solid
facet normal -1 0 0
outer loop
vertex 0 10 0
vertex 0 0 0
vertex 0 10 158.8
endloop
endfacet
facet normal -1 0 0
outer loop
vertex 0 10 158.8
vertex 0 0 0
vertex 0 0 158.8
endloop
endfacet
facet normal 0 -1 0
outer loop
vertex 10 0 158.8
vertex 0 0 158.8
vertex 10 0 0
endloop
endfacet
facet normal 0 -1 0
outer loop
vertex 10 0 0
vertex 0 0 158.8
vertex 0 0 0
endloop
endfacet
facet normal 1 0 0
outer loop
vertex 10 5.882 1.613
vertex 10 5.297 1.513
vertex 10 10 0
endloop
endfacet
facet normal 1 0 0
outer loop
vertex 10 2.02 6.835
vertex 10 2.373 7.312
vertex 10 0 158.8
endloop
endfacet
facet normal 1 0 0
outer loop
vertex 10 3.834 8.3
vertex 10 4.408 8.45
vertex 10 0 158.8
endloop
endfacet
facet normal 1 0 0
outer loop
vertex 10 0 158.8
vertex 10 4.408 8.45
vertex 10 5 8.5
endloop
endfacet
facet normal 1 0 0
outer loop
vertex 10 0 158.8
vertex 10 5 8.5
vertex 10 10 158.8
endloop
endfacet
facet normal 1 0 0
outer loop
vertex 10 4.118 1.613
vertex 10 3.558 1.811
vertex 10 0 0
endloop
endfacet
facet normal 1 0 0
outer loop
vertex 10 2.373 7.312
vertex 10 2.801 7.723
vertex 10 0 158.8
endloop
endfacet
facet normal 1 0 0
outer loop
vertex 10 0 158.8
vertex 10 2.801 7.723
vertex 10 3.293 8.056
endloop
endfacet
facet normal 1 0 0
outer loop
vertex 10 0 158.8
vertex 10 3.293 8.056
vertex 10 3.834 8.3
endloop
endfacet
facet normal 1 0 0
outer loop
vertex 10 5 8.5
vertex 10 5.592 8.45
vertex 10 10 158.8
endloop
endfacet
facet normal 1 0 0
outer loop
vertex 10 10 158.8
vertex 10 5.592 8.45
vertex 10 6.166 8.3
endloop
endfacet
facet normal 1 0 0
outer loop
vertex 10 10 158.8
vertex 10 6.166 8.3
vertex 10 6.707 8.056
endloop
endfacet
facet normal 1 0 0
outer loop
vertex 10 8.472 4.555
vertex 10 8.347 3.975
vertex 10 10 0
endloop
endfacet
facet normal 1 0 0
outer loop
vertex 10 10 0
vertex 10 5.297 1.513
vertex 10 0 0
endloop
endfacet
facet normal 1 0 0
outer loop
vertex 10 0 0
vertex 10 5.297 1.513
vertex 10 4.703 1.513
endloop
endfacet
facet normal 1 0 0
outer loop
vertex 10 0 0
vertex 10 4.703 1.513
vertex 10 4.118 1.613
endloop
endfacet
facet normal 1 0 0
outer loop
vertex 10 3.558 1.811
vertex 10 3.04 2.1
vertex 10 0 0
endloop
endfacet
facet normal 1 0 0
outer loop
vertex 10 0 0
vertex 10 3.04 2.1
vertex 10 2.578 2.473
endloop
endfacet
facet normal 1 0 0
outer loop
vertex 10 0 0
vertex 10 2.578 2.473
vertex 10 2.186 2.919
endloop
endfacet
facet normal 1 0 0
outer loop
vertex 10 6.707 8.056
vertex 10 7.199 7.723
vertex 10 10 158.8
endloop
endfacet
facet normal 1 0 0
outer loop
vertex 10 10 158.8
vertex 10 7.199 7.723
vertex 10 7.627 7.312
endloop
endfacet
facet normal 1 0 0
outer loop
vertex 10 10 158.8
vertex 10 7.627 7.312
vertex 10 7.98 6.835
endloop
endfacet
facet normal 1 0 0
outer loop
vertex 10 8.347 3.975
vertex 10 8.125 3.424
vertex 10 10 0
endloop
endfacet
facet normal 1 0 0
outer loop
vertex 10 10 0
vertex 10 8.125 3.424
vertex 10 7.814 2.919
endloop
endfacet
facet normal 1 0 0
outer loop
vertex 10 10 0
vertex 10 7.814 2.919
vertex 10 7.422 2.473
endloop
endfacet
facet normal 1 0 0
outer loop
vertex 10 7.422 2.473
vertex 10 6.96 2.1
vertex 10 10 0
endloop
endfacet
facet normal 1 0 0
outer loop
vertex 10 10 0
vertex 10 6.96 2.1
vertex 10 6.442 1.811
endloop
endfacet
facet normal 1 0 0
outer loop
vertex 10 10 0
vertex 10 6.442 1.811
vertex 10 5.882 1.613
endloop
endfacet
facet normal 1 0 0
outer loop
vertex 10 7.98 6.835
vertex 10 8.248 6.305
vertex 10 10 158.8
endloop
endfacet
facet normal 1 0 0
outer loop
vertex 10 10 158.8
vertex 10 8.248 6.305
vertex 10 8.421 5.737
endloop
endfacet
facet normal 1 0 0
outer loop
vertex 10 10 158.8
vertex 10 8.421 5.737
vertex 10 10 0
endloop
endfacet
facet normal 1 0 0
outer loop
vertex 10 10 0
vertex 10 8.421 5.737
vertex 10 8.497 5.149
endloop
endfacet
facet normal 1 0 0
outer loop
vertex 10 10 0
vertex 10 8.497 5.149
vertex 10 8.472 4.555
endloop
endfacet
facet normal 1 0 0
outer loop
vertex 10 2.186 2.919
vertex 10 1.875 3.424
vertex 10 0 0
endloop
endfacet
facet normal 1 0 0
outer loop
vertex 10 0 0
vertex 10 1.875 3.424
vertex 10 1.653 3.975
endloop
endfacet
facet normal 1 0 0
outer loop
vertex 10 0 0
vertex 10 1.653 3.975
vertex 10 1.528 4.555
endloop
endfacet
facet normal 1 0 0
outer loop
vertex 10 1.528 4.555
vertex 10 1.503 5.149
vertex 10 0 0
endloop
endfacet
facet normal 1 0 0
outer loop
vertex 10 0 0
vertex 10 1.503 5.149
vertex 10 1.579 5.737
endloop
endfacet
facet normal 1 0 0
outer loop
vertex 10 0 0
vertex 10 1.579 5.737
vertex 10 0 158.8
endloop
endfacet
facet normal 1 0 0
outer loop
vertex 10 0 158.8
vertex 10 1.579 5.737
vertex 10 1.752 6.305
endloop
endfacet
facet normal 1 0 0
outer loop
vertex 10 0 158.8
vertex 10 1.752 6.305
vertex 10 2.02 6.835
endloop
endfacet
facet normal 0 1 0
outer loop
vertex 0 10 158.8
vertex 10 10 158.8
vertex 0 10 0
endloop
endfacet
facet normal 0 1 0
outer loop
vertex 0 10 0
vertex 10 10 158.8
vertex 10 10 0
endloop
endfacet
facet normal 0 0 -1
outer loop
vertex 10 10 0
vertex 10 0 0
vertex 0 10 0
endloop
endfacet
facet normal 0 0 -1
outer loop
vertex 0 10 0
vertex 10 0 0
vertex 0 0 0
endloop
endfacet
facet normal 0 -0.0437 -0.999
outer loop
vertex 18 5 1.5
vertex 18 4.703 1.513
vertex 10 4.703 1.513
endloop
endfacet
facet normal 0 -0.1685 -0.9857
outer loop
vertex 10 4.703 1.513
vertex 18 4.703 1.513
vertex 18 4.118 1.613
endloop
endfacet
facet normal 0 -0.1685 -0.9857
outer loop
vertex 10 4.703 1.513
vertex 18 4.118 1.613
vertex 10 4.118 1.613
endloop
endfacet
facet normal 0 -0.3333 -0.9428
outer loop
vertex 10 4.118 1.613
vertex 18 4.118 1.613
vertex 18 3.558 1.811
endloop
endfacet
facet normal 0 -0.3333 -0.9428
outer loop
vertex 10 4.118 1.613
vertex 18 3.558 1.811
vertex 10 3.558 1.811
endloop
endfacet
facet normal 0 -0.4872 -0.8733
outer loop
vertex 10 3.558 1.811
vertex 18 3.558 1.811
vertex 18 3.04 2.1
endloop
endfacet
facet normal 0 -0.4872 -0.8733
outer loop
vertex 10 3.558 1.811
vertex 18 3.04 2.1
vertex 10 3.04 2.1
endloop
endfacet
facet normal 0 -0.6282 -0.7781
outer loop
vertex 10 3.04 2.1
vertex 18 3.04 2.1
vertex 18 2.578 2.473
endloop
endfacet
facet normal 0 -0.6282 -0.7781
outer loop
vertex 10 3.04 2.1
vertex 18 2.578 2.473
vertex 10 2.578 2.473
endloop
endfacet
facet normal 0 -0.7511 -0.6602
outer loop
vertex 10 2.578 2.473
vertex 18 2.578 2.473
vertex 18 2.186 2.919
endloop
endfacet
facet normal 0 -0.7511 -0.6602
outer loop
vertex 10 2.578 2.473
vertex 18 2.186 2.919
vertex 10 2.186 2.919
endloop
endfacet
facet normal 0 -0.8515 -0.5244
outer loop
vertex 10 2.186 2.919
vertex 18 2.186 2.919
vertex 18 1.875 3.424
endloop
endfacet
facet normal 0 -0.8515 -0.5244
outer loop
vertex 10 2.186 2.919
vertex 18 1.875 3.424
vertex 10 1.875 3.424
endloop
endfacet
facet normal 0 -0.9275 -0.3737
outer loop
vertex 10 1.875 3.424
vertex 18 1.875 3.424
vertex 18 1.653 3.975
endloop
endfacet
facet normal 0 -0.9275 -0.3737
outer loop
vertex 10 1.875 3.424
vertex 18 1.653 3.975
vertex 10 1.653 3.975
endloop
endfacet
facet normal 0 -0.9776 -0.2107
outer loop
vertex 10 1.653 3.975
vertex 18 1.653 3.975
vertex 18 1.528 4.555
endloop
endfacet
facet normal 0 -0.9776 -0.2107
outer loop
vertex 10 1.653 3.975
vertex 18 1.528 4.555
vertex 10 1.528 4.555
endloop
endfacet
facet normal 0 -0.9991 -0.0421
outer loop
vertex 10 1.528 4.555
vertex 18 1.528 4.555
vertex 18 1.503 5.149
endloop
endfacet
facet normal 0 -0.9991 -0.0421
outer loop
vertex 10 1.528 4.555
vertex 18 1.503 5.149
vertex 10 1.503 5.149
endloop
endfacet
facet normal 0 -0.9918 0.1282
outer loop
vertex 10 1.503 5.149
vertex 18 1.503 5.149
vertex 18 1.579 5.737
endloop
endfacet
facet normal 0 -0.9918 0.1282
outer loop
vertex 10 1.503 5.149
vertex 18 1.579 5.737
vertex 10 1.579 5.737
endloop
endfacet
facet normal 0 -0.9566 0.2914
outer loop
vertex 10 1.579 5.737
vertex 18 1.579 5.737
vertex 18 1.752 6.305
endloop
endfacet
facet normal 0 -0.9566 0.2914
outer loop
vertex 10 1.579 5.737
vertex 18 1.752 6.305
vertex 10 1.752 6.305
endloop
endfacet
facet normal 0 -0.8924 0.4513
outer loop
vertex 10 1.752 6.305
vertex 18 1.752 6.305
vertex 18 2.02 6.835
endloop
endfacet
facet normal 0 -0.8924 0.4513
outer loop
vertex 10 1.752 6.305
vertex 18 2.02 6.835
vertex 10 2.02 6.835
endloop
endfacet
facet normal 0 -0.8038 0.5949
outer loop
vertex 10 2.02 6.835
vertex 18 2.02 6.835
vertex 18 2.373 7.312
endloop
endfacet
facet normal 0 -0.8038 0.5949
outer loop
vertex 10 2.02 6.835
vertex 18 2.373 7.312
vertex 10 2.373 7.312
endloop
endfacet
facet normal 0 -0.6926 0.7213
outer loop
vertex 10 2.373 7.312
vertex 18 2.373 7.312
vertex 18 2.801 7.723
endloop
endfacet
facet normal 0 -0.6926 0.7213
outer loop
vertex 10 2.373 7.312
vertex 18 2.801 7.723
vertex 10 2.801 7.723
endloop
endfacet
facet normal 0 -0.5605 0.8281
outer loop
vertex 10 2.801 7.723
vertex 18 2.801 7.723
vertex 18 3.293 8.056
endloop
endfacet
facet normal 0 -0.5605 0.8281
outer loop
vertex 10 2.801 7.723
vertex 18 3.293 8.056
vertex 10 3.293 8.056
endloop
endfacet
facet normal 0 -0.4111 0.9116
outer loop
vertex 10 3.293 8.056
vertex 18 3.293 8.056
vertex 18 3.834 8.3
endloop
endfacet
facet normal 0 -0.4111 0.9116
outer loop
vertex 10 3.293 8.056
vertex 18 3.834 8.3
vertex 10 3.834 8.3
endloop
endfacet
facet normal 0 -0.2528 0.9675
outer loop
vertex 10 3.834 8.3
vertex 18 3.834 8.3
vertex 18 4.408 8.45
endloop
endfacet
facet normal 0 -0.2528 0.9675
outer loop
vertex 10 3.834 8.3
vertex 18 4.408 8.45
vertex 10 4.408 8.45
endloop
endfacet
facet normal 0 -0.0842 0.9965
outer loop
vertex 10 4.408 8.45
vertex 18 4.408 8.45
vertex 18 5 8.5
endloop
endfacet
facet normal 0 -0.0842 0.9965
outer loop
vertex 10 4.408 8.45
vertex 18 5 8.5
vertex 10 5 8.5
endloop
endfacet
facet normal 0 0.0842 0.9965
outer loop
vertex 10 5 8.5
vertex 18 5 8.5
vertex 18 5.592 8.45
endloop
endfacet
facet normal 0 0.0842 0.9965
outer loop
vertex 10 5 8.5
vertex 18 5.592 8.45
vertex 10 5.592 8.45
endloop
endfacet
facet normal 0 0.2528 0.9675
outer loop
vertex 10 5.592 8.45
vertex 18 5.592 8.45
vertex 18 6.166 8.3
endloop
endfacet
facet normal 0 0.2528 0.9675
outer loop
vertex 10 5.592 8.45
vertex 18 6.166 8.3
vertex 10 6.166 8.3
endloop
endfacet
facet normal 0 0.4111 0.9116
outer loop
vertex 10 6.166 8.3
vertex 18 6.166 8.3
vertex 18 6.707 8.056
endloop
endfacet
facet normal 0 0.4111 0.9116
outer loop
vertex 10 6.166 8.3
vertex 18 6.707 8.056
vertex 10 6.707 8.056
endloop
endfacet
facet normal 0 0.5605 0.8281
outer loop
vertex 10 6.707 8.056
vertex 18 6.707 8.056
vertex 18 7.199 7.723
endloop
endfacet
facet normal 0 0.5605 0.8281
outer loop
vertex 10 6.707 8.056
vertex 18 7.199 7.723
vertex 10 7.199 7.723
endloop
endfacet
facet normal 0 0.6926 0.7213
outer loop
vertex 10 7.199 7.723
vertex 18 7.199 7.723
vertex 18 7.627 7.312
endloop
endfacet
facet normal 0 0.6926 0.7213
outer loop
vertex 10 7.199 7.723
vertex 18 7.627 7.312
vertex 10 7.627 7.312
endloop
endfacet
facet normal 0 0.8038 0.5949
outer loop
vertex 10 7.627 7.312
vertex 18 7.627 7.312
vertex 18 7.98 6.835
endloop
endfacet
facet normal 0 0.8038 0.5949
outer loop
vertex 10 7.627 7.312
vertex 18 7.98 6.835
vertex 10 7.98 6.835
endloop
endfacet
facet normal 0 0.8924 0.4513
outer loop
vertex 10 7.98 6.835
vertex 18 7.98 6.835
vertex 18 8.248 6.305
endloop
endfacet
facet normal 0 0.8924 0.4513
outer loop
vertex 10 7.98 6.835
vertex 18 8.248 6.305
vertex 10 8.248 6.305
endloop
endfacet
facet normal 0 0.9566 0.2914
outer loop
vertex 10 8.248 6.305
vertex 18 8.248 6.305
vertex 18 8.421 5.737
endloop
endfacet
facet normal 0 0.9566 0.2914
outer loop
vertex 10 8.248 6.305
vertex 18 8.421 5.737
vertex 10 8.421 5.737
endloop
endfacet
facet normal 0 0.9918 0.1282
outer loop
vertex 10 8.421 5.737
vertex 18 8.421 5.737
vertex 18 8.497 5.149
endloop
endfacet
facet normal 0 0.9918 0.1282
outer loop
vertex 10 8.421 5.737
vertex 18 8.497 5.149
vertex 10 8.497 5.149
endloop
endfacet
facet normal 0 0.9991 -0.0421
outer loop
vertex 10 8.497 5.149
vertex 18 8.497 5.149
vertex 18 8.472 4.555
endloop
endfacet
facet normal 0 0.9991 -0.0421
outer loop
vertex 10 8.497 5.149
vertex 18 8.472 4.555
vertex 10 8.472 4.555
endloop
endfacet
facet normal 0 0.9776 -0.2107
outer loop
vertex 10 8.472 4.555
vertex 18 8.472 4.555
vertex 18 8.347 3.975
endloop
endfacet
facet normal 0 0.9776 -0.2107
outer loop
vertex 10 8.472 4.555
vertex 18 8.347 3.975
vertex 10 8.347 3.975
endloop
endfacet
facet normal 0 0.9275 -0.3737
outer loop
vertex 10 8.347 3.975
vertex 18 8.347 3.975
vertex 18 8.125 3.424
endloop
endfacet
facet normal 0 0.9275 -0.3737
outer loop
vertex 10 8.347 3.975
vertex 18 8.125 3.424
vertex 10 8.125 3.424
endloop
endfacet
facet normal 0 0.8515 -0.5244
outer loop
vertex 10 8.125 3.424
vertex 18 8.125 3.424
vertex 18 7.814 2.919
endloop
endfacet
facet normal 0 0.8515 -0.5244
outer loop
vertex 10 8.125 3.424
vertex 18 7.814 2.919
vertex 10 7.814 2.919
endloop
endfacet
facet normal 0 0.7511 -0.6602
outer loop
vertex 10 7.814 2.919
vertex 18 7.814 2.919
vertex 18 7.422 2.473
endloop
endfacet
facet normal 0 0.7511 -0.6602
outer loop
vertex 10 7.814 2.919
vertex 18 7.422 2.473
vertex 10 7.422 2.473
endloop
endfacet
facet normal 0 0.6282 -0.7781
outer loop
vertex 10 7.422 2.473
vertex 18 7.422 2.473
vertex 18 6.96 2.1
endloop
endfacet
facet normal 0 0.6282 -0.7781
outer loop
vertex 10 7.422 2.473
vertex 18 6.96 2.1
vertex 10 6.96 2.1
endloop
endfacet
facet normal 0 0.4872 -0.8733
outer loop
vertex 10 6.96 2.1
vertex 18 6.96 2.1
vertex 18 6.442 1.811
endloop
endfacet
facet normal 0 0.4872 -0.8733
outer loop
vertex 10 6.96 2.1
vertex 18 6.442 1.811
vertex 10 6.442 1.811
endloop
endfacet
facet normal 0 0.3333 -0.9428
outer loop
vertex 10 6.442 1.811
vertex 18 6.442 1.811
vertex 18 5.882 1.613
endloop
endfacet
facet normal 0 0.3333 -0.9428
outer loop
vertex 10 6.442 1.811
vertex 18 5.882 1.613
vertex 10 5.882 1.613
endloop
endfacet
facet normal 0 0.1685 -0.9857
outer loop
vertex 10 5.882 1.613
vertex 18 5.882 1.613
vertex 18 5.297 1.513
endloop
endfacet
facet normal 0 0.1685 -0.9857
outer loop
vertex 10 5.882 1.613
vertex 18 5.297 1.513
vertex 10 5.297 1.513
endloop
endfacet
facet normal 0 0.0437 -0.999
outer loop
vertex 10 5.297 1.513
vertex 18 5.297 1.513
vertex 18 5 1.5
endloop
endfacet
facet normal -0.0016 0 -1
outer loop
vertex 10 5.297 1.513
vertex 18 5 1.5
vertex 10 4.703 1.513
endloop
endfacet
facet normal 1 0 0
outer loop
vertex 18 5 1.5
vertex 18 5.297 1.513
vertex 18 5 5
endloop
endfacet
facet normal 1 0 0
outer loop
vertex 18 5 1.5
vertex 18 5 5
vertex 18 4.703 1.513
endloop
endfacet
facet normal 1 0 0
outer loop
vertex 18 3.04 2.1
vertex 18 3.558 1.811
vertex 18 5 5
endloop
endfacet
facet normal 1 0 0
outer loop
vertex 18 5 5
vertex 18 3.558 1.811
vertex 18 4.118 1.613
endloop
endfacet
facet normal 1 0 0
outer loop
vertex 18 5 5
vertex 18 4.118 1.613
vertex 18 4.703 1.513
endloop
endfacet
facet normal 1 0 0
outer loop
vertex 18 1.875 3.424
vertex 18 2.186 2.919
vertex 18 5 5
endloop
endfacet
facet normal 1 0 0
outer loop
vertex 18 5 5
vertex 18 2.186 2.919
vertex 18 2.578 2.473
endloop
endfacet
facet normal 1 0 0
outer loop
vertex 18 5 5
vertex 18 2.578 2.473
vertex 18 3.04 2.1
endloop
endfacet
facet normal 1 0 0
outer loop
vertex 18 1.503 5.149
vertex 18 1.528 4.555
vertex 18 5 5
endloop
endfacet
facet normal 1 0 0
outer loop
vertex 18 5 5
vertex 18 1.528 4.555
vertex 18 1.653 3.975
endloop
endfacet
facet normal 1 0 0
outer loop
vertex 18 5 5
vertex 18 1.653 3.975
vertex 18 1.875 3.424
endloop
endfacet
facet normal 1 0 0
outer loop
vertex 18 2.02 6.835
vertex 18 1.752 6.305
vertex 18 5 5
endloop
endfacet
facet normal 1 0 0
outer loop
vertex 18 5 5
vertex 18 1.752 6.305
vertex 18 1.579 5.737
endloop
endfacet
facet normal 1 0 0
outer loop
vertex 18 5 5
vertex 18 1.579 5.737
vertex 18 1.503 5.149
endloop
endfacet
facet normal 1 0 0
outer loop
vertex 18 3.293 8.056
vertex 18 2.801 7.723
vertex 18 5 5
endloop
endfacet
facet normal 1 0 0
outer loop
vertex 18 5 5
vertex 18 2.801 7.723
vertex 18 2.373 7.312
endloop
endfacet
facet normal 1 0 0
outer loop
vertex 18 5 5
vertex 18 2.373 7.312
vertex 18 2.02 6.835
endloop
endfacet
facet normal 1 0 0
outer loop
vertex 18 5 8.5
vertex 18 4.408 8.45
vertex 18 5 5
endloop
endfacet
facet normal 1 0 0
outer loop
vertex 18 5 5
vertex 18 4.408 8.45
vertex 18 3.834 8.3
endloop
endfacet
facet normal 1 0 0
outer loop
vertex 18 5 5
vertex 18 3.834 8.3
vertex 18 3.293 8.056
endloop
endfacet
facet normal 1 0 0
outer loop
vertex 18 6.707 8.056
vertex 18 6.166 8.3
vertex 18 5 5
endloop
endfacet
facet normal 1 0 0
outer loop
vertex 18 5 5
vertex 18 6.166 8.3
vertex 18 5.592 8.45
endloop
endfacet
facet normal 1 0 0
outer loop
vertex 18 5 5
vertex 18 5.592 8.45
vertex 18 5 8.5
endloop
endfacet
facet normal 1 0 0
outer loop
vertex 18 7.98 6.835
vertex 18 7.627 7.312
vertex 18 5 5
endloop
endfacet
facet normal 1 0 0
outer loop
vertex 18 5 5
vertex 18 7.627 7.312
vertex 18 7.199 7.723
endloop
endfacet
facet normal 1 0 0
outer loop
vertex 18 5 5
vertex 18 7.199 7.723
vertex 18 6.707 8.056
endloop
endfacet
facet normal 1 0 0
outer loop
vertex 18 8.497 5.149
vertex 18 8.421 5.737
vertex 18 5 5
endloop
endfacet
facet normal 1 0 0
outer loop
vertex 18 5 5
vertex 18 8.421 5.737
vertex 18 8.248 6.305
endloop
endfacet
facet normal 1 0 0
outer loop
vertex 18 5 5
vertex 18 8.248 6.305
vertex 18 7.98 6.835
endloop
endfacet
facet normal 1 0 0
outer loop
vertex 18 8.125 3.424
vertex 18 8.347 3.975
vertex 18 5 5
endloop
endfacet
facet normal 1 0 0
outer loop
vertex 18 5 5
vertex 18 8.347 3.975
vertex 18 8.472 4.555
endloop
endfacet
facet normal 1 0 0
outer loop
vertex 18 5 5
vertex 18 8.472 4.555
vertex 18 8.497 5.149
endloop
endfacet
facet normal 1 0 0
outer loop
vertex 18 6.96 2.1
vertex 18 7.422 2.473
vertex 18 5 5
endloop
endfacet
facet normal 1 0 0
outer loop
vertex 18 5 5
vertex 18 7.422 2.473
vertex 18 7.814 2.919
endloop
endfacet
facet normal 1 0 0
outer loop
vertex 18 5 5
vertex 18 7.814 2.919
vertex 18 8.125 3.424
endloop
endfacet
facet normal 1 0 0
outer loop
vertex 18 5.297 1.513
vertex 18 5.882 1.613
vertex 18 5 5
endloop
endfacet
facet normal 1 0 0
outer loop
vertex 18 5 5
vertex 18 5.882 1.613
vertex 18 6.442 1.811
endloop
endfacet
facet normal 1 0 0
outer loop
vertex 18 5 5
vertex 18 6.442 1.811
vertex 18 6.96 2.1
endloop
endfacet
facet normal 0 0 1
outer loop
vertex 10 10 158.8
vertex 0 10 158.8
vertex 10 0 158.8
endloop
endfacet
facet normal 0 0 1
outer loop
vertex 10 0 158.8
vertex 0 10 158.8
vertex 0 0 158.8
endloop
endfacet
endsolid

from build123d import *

# Parameters (mm, degrees)
SKETCH2_W           = 10
SKETCH2_H           = 10
BOSS_EXTRUDE1_DEPTH = 158.8
SKETCH3_R           = 3.5
BOSS_EXTRUDE2_DEPTH = 8
SKETCH4_W           = 15
SKETCH4_H           = 27.94
BOSS_EXTRUDE4_DEPTH = 4
SKETCH5_W           = 2.25448465
SKETCH5_H           = 27.94
BOSS_EXTRUDE5_DEPTH = 4
SKETCH6_R           = 1.5
CUT_EXTRUDE1_DEPTH  = 40
SKETCH7_W           = 15
SKETCH7_H           = 27.94
CUT_EXTRUDE2_DEPTH  = 8


with BuildPart() as part:
    # Sketch2 → Boss-Extrude1 (new body)
    with BuildSketch(Plane.XY):
        with Locations((5, 5)):
            Rectangle(SKETCH2_W, SKETCH2_H)
    extrude(amount=BOSS_EXTRUDE1_DEPTH)

    # Sketch3 → Boss-Extrude2 (add)
    with BuildSketch(Plane(origin=(10, 0, 0), x_dir=(0, 0, -1), z_dir=(1, 0, 0))):
        with Locations((-5, 5)):
            Circle(SKETCH3_R)
    extrude(amount=BOSS_EXTRUDE2_DEPTH)

    # Sketch4 → Boss-Extrude4 (add)
    with BuildSketch(Plane.XY.offset(158.8)):
        with Locations((7.5, 5)):
            Rectangle(SKETCH4_W, SKETCH4_H)
    extrude(amount=BOSS_EXTRUDE4_DEPTH)

    # Sketch5 → Boss-Extrude5 (add)
    with BuildSketch(Plane.XY.offset(162.8)):
        with Locations((13.872757675, 5)):
            Rectangle(SKETCH5_W, SKETCH5_H)
    extrude(amount=BOSS_EXTRUDE5_DEPTH)

    # Sketch6 → Cut-Extrude1 (cut)
    with BuildSketch(Plane.ZY.offset(-12.74551535)):
        with Locations((165.086, 16.64426)):
            Circle(SKETCH6_R)
        with Locations((165.086, -6.645)):
            Circle(SKETCH6_R)
    extrude(amount=-CUT_EXTRUDE1_DEPTH, mode=Mode.SUBTRACT)

    # Sketch7 → Cut-Extrude2 (cut)
    with BuildSketch(Plane.XY.offset(166.8)):
        with Locations((7.5, 5)):
            Rectangle(SKETCH7_W, SKETCH7_H)
    extrude(amount=-CUT_EXTRUDE2_DEPTH, mode=Mode.SUBTRACT)


solid = part.part
